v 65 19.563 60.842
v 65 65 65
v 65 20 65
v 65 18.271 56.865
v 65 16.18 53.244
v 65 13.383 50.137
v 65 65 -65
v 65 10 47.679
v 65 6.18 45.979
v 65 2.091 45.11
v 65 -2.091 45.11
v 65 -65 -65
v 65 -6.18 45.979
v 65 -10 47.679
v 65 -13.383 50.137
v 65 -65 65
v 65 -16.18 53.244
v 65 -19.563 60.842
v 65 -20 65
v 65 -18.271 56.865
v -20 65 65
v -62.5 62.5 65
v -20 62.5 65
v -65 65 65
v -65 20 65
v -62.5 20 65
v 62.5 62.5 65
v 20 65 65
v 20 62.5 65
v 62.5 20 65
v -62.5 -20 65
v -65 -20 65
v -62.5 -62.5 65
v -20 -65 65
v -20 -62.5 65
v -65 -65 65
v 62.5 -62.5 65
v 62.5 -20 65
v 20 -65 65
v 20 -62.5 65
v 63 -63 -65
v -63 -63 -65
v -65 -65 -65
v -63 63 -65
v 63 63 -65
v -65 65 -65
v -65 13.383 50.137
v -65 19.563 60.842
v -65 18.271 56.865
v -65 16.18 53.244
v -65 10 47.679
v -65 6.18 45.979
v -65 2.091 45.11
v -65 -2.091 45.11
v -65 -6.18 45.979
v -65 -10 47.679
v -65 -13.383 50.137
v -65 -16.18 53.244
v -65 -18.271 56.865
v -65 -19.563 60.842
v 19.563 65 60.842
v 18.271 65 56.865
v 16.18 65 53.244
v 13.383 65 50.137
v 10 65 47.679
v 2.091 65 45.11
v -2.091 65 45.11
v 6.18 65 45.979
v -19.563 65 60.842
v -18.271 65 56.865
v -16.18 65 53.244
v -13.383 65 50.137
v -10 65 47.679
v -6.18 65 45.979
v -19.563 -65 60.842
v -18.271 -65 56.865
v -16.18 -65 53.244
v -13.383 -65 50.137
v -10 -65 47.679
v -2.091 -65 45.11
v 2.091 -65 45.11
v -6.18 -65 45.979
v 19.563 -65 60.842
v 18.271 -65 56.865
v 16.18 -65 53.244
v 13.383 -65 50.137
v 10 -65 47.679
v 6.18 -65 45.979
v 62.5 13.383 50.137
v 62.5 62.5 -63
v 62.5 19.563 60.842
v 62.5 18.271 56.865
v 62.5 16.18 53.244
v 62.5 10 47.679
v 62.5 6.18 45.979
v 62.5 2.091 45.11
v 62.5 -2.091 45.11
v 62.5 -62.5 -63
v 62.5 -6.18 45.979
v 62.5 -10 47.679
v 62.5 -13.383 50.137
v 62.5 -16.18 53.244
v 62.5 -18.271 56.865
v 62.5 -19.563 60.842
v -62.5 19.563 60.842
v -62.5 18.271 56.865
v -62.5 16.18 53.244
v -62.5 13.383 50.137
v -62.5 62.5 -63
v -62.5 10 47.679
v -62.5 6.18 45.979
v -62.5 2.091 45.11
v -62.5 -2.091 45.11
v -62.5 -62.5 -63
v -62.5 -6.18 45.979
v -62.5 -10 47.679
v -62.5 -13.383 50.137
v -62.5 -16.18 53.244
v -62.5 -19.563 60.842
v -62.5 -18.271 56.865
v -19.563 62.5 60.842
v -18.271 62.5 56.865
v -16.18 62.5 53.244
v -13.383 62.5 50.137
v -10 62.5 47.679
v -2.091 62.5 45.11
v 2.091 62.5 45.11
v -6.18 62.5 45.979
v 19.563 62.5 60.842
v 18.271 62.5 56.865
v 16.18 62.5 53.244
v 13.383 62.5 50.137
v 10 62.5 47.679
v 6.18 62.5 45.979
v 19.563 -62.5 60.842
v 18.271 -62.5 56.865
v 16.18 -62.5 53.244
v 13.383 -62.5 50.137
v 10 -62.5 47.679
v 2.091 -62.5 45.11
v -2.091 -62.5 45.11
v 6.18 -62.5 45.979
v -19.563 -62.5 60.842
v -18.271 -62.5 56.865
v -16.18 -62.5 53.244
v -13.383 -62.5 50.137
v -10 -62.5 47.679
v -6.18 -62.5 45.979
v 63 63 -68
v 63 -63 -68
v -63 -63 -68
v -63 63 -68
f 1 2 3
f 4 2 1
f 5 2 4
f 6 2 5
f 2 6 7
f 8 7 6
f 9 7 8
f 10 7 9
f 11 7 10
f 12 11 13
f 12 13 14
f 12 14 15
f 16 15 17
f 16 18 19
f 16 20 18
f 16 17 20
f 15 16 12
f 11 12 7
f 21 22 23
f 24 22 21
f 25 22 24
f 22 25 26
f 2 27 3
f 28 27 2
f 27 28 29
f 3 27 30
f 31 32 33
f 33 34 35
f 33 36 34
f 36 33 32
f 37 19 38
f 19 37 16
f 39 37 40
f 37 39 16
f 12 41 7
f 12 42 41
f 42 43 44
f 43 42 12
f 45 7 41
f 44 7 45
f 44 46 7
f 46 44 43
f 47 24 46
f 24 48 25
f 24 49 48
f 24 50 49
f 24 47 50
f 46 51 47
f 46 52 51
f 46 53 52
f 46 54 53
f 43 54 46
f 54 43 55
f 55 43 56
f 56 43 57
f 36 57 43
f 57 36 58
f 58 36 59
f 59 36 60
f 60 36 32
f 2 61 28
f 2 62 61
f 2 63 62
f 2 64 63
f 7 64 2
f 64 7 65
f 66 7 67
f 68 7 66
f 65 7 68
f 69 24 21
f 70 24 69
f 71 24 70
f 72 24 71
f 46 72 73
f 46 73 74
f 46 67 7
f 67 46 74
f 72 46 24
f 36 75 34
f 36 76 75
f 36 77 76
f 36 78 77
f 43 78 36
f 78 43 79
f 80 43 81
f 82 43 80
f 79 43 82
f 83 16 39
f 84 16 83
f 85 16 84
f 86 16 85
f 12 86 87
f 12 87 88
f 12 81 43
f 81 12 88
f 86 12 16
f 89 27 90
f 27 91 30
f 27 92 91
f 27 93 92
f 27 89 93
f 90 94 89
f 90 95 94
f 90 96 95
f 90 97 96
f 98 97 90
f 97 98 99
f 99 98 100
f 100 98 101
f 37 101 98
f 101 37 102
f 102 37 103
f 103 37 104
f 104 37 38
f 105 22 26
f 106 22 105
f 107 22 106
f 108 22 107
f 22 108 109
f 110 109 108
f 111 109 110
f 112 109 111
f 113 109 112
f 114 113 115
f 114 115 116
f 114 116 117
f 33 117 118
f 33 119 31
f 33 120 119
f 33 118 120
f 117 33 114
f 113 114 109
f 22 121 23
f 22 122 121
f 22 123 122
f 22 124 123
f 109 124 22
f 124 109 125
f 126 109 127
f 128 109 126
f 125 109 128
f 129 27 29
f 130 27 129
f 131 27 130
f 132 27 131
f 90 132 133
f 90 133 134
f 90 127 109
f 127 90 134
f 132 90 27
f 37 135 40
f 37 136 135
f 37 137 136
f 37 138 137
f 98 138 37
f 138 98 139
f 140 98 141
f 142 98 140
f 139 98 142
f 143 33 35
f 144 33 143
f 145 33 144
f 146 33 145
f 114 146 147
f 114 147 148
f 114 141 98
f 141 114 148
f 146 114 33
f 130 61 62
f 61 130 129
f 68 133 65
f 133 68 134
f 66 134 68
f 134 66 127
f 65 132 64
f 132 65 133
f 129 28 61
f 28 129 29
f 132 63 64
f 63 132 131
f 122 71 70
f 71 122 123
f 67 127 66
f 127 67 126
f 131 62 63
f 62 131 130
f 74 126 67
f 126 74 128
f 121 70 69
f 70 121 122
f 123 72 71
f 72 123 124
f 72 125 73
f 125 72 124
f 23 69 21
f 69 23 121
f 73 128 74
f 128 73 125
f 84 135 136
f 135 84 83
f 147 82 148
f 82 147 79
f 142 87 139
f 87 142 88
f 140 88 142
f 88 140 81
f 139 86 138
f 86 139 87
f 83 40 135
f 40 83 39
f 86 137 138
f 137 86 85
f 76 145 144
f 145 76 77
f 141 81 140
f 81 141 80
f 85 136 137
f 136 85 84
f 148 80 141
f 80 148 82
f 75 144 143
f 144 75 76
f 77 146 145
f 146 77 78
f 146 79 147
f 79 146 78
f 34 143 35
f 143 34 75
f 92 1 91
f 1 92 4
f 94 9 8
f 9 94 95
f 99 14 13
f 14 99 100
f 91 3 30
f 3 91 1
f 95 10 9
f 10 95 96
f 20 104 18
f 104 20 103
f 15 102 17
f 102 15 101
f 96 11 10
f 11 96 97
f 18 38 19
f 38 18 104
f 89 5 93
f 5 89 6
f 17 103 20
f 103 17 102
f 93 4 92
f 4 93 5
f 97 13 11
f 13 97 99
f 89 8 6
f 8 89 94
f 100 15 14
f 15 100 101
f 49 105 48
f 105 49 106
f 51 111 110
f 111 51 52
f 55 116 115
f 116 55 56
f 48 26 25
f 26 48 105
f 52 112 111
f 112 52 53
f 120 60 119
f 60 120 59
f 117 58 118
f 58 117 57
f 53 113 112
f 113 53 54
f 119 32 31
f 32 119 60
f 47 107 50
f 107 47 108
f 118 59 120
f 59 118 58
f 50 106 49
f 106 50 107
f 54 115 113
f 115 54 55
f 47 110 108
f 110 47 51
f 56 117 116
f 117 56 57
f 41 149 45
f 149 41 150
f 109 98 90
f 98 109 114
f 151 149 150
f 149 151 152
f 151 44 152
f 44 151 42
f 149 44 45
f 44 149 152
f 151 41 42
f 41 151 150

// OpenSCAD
translate([-63,-63,-68]) color([1,0,0]) cube([126,126,5]);

difference() {
    cube([130,130,130], true );
    translate([0,0,0]) cube([125,125,131],true);
    translate([0,65,65]) rotate([90,0,0]) cylinder(20,20,20, center = true);
    translate([0,-65,65]) rotate([90,0,0]) cylinder(20,20,20, center = true);
    translate([65,0,65]) rotate([90,0,90]) cylinder(20,20,20, center = true);
    translate([-65,0,65]) rotate([90,0,90]) cylinder(20,20,20, center = true);
}
